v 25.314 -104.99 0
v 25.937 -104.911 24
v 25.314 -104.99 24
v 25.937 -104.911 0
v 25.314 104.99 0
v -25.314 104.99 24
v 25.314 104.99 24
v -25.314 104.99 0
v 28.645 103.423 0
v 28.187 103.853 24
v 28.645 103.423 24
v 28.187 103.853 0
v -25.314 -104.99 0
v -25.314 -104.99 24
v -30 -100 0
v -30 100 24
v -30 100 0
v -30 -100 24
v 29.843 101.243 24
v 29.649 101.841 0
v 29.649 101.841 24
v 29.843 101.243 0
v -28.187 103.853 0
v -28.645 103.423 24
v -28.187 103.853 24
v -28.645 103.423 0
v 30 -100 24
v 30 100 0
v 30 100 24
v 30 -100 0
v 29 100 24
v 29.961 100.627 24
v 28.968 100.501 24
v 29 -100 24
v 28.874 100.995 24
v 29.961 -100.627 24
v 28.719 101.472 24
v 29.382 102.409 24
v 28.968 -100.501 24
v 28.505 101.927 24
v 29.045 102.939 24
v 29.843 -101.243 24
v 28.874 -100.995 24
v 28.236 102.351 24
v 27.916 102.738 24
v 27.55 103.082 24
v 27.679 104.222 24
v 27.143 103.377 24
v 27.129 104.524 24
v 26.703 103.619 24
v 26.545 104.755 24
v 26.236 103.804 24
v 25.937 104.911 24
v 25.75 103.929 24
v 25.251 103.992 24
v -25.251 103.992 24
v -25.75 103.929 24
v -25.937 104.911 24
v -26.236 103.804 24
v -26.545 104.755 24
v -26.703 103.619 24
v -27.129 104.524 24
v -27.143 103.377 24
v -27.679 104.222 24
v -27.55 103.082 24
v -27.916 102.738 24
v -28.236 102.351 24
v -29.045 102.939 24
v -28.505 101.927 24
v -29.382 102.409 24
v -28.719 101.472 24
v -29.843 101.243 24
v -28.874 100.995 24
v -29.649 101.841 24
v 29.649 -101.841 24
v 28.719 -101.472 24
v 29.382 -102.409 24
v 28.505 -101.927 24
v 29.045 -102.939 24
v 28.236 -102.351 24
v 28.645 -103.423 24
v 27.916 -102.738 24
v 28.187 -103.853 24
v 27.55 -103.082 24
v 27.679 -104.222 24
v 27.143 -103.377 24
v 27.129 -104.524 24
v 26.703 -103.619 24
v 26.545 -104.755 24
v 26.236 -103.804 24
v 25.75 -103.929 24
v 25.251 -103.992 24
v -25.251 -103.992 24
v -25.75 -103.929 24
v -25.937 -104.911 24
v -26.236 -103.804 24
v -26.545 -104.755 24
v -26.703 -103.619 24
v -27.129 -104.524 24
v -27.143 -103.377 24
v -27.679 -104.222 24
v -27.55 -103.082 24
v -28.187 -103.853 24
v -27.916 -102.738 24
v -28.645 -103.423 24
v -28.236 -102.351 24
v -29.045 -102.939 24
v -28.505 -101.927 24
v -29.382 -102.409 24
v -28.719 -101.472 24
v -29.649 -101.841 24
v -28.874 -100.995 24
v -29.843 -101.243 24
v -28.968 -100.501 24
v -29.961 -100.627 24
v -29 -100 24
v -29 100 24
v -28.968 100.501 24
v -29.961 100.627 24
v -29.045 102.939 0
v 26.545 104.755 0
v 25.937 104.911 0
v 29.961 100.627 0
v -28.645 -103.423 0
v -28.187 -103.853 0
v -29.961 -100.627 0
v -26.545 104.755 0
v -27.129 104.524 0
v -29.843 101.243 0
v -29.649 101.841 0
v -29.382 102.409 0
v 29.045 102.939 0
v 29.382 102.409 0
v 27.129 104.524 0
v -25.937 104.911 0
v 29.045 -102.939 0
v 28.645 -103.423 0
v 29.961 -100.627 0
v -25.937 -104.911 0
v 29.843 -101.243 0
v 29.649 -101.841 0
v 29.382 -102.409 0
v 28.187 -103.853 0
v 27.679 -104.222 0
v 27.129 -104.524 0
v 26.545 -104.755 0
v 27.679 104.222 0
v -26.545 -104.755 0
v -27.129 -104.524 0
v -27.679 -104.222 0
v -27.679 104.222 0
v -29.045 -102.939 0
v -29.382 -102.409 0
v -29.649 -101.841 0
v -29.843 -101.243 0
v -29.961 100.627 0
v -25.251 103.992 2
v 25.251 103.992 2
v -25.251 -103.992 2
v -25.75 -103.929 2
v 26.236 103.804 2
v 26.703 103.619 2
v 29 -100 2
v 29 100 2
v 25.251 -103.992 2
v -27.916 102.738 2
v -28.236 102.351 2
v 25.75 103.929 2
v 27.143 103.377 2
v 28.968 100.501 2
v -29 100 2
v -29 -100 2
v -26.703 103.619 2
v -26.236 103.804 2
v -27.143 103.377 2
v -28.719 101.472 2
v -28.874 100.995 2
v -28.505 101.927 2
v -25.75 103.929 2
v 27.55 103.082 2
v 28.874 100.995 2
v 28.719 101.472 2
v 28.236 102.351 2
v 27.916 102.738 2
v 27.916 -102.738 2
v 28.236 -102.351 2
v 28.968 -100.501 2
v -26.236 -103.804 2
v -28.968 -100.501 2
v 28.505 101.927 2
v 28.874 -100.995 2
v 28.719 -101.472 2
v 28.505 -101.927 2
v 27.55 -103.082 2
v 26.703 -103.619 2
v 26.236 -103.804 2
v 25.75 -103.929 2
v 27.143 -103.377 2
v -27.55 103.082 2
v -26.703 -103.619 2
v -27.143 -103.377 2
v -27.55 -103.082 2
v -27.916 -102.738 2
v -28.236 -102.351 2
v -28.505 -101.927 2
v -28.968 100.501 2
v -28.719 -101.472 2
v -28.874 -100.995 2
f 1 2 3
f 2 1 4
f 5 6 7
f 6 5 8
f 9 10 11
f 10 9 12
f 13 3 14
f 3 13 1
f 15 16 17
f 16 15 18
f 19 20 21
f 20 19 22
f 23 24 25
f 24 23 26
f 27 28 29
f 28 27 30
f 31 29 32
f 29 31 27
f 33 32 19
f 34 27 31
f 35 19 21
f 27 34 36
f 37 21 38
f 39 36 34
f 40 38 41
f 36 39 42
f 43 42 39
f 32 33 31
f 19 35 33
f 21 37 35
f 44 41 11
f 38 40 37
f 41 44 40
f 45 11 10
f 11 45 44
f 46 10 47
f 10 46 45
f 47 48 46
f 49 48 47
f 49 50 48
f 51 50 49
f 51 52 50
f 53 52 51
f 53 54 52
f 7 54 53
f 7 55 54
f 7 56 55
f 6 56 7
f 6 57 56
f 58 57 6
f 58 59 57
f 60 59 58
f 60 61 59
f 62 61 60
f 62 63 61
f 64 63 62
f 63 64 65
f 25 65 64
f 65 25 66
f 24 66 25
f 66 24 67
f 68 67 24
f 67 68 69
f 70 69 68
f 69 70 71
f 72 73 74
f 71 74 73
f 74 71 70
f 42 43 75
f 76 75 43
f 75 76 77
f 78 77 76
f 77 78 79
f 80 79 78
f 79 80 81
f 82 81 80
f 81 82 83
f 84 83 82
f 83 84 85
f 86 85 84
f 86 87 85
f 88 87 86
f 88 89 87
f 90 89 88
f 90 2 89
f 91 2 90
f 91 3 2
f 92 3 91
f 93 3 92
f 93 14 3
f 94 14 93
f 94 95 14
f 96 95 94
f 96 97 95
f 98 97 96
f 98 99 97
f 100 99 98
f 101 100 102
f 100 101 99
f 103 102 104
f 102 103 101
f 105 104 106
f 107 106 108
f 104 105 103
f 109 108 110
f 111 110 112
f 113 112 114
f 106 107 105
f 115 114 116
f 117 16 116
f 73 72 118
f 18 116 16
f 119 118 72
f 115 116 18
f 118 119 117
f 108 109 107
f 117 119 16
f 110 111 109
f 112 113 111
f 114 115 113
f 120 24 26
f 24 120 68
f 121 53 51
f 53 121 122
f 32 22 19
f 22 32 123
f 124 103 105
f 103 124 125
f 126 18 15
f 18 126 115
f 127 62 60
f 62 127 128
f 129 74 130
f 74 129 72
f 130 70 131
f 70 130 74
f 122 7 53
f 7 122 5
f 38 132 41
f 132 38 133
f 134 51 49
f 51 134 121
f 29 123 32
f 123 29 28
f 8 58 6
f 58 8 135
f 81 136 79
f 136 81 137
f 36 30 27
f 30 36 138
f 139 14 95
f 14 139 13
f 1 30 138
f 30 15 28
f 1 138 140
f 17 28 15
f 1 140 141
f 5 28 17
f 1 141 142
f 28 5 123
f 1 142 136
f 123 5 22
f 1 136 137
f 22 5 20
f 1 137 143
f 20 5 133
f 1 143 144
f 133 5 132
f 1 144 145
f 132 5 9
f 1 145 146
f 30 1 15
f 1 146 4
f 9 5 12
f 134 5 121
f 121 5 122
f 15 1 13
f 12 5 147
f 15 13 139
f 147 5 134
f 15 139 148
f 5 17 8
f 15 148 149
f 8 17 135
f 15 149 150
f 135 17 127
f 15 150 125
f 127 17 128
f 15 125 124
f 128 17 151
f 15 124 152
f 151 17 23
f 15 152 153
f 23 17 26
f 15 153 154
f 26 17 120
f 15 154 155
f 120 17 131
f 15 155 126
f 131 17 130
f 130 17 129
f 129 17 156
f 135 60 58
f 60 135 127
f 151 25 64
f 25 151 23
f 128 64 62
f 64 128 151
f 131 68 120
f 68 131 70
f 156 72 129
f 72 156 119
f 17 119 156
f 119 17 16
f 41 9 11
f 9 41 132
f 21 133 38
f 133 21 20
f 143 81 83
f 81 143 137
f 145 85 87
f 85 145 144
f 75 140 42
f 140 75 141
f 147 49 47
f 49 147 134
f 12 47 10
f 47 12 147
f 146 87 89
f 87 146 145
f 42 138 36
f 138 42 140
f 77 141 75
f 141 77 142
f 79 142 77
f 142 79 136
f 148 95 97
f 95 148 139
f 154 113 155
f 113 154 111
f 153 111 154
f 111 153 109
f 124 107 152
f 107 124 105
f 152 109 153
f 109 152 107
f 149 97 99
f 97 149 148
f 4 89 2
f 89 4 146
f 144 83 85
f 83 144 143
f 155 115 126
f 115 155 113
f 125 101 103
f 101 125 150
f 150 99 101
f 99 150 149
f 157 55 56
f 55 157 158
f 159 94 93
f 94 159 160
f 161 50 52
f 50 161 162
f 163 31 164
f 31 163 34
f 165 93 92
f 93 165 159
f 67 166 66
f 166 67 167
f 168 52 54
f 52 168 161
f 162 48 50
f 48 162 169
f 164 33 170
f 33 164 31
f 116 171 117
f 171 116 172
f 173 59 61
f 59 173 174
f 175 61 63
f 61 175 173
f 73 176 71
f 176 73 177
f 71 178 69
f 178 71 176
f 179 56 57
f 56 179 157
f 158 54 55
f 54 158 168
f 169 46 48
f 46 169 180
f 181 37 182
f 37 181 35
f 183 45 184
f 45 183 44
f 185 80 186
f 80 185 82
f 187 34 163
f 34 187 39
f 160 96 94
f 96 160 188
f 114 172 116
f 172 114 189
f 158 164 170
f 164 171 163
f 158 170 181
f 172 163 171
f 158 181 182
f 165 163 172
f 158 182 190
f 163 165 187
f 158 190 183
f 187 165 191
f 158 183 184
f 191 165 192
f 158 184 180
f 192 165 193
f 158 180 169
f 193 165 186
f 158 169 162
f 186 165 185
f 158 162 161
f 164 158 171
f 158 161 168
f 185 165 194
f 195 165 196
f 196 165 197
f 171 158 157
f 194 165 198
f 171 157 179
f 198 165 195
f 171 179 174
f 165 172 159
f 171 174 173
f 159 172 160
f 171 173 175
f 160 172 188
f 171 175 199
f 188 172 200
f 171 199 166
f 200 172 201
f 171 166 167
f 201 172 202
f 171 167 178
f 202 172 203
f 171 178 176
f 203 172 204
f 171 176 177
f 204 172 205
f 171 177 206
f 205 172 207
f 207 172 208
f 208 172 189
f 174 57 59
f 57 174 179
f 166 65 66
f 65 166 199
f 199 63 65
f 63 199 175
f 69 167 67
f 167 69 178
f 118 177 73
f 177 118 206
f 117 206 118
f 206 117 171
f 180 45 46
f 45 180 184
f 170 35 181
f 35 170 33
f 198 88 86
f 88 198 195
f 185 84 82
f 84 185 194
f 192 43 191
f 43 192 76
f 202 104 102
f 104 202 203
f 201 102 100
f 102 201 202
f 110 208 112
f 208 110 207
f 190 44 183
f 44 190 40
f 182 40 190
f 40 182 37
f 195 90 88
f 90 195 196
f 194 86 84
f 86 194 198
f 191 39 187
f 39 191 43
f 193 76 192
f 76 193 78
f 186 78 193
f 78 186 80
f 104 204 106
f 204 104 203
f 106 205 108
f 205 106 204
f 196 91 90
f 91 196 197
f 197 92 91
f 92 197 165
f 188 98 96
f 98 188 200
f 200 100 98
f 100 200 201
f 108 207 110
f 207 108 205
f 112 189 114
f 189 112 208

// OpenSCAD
$fn = 50;


difference() {
	union() {
		hull() {
			translate(v = [-25.0000000000, 100.0000000000, 0]) {
				cylinder(h = 24, r = 5);
			}
			translate(v = [25.0000000000, 100.0000000000, 0]) {
				cylinder(h = 24, r = 5);
			}
			translate(v = [-25.0000000000, -100.0000000000, 0]) {
				cylinder(h = 24, r = 5);
			}
			translate(v = [25.0000000000, -100.0000000000, 0]) {
				cylinder(h = 24, r = 5);
			}
		}
	}
	union() {
		translate(v = [0, 0, 2]) {
			hull() {
				translate(v = [-25.0000000000, 100.0000000000, 0]) {
					cylinder(h = 22, r = 4);
				}
				translate(v = [25.0000000000, 100.0000000000, 0]) {
					cylinder(h = 22, r = 4);
				}
				translate(v = [-25.0000000000, -100.0000000000, 0]) {
					cylinder(h = 22, r = 4);
				}
				translate(v = [25.0000000000, -100.0000000000, 0]) {
					cylinder(h = 22, r = 4);
				}
			}
		}
	}
}
